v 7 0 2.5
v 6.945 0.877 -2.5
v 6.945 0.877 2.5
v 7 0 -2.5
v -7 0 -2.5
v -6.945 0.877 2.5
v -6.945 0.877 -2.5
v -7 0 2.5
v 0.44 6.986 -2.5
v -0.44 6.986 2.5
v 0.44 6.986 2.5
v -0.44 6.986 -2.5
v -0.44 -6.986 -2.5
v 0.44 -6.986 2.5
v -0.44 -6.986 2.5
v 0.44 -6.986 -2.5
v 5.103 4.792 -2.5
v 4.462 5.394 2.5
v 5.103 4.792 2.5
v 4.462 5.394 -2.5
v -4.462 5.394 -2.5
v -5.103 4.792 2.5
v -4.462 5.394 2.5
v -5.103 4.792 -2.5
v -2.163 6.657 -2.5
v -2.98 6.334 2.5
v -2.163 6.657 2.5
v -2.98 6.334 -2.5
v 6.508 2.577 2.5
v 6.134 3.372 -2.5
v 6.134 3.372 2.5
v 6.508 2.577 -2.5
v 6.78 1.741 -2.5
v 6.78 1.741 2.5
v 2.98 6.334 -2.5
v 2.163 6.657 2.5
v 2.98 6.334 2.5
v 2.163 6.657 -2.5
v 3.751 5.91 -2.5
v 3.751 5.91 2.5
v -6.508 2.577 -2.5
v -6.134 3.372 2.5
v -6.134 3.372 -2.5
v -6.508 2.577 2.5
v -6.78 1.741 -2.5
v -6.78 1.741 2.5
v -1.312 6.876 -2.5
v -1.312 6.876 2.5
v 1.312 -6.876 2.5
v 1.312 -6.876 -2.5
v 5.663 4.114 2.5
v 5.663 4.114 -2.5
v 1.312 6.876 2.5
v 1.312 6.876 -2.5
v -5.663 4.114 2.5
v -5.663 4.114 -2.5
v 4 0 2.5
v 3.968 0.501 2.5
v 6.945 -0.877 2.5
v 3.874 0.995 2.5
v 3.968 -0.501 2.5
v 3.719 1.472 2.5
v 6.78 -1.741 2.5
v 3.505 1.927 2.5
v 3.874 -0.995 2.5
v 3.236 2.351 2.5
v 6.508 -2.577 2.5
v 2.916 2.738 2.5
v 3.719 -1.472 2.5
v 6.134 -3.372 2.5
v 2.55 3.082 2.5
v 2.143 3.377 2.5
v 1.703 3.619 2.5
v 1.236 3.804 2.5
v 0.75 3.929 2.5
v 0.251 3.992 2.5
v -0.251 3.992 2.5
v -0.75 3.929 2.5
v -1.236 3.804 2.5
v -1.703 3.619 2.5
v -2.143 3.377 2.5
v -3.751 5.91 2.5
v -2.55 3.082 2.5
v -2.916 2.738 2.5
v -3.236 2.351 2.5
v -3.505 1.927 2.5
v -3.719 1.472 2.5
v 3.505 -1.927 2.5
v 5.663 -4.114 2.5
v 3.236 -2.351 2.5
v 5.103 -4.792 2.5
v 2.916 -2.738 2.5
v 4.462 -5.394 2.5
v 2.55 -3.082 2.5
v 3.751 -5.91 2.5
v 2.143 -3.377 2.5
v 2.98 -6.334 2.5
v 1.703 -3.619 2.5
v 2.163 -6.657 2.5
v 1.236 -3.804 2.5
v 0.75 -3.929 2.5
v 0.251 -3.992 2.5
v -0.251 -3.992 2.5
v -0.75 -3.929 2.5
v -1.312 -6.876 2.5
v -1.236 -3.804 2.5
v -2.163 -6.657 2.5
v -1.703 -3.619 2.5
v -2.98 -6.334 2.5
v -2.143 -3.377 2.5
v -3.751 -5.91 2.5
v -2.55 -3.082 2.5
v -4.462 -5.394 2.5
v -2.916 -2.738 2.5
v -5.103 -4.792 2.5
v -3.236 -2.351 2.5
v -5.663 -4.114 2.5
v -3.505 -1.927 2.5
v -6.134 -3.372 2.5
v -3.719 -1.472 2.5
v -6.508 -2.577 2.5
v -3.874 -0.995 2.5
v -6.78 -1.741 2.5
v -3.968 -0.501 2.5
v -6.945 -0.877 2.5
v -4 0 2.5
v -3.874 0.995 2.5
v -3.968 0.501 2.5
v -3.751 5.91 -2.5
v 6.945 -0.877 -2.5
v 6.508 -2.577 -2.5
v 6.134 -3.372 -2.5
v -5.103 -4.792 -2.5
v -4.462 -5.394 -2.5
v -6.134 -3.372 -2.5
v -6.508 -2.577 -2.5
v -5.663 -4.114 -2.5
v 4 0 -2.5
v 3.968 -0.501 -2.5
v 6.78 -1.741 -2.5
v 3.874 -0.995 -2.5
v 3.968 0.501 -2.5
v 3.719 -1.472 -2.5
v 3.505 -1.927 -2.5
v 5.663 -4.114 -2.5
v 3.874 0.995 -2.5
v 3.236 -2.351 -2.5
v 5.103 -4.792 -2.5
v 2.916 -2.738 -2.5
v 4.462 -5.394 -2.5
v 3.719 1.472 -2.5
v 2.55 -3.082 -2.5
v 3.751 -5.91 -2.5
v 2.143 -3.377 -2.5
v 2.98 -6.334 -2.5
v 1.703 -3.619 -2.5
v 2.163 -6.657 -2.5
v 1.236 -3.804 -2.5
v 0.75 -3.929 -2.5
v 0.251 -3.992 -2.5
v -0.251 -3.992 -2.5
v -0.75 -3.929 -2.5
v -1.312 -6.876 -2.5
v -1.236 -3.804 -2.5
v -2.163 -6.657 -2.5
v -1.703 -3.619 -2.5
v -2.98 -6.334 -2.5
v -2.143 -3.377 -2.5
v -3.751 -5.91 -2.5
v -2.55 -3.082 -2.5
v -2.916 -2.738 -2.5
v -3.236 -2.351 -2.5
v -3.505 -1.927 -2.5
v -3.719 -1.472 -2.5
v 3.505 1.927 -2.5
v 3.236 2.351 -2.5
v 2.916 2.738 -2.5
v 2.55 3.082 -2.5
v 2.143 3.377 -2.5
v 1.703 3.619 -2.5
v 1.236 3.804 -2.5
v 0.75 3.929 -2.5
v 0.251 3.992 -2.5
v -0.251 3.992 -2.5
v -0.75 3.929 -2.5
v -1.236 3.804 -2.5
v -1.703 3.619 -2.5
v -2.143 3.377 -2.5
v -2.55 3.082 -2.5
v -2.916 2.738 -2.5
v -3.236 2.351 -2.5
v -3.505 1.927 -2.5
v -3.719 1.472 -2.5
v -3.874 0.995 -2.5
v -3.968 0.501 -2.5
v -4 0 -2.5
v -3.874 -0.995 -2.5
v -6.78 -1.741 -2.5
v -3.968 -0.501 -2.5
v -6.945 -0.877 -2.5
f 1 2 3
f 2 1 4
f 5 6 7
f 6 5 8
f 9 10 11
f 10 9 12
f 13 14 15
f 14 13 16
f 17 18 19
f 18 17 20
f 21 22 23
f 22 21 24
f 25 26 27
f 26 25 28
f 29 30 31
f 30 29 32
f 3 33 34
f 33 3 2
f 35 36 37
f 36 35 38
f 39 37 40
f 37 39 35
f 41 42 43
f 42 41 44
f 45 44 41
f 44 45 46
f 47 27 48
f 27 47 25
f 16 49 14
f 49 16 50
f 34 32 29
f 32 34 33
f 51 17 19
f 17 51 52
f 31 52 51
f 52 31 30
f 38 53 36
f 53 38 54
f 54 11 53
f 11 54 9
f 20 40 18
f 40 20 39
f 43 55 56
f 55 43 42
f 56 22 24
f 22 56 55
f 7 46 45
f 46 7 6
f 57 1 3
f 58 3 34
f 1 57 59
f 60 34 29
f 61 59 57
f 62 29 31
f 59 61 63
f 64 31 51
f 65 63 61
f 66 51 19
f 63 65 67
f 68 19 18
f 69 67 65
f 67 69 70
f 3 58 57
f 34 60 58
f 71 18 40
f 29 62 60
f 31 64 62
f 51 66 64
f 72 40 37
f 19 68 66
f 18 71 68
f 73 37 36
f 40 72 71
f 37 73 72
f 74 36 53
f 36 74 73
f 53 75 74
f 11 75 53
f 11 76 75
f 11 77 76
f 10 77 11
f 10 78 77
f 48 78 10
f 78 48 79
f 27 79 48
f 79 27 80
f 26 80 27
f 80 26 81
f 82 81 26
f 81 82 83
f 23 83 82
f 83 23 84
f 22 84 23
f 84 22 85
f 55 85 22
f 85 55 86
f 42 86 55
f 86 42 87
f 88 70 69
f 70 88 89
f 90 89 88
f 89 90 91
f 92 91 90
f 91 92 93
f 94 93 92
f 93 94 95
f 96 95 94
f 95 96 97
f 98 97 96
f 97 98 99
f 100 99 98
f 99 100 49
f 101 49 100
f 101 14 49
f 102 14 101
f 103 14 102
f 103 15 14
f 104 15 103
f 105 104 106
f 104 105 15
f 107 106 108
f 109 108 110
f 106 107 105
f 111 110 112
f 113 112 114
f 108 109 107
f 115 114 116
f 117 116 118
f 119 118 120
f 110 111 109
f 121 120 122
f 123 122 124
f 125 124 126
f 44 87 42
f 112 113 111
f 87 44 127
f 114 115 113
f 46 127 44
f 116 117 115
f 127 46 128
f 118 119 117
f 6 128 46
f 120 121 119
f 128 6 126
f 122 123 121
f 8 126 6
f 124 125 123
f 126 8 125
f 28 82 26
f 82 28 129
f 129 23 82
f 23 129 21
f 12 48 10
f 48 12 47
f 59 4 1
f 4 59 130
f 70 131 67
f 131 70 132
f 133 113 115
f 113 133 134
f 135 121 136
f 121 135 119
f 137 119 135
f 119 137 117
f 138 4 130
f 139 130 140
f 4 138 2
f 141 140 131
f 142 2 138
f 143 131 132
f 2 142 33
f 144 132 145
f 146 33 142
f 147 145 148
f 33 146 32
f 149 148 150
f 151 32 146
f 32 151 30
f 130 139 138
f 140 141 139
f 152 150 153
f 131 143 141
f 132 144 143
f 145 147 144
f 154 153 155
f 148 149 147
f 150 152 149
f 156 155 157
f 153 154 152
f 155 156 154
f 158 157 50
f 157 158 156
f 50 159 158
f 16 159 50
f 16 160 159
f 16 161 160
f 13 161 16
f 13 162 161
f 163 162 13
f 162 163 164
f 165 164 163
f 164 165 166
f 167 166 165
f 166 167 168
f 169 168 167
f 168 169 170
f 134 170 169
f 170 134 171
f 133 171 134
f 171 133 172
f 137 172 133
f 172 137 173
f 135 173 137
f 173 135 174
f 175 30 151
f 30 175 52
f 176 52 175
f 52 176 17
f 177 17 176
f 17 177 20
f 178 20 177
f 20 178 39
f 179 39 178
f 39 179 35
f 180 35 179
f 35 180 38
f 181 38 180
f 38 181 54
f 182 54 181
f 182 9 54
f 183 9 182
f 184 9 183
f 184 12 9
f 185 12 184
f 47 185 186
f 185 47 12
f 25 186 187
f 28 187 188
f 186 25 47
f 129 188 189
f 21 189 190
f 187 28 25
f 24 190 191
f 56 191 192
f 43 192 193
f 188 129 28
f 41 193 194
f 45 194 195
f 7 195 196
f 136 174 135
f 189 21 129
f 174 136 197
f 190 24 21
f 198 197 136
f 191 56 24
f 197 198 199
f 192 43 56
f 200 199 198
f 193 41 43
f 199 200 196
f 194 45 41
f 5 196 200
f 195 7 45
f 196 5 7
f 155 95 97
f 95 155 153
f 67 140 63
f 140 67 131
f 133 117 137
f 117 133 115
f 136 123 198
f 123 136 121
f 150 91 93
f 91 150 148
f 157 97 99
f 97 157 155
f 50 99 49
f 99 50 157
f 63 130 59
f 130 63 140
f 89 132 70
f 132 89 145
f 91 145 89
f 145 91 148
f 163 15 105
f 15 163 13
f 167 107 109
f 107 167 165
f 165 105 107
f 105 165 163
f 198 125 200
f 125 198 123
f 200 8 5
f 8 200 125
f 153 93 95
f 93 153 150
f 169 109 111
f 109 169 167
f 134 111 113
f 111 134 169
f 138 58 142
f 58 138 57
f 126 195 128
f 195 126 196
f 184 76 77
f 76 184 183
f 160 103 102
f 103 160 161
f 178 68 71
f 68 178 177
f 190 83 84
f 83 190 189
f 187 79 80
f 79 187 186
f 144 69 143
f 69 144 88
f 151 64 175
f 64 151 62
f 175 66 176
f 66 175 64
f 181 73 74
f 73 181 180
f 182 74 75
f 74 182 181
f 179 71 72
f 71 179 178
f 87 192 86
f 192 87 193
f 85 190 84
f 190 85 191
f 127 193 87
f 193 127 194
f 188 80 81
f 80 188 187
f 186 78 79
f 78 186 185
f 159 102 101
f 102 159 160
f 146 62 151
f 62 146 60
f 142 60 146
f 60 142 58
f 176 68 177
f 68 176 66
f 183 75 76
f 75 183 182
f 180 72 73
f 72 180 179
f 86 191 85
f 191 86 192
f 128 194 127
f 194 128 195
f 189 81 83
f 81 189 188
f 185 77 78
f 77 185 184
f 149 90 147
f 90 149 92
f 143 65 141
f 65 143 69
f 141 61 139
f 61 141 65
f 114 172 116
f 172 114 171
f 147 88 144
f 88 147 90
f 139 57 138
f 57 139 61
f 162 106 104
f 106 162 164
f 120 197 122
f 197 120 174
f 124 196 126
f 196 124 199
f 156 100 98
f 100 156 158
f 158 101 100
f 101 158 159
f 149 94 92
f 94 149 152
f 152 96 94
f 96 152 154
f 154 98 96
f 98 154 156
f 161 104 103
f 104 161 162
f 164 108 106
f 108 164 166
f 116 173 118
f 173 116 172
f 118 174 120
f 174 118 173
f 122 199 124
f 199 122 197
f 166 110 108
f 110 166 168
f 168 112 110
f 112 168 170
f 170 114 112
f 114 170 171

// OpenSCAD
$fn = 50;


difference() {
	union() {
		translate(v = [0, 0, -2.5000000000]) {
			cylinder(h = 5, r = 7.0000000000);
		}
	}
	union() {
		translate(v = [0, 0, -100.0000000000]) {
			cylinder(h = 200, r = 4);
		}
	}
}
